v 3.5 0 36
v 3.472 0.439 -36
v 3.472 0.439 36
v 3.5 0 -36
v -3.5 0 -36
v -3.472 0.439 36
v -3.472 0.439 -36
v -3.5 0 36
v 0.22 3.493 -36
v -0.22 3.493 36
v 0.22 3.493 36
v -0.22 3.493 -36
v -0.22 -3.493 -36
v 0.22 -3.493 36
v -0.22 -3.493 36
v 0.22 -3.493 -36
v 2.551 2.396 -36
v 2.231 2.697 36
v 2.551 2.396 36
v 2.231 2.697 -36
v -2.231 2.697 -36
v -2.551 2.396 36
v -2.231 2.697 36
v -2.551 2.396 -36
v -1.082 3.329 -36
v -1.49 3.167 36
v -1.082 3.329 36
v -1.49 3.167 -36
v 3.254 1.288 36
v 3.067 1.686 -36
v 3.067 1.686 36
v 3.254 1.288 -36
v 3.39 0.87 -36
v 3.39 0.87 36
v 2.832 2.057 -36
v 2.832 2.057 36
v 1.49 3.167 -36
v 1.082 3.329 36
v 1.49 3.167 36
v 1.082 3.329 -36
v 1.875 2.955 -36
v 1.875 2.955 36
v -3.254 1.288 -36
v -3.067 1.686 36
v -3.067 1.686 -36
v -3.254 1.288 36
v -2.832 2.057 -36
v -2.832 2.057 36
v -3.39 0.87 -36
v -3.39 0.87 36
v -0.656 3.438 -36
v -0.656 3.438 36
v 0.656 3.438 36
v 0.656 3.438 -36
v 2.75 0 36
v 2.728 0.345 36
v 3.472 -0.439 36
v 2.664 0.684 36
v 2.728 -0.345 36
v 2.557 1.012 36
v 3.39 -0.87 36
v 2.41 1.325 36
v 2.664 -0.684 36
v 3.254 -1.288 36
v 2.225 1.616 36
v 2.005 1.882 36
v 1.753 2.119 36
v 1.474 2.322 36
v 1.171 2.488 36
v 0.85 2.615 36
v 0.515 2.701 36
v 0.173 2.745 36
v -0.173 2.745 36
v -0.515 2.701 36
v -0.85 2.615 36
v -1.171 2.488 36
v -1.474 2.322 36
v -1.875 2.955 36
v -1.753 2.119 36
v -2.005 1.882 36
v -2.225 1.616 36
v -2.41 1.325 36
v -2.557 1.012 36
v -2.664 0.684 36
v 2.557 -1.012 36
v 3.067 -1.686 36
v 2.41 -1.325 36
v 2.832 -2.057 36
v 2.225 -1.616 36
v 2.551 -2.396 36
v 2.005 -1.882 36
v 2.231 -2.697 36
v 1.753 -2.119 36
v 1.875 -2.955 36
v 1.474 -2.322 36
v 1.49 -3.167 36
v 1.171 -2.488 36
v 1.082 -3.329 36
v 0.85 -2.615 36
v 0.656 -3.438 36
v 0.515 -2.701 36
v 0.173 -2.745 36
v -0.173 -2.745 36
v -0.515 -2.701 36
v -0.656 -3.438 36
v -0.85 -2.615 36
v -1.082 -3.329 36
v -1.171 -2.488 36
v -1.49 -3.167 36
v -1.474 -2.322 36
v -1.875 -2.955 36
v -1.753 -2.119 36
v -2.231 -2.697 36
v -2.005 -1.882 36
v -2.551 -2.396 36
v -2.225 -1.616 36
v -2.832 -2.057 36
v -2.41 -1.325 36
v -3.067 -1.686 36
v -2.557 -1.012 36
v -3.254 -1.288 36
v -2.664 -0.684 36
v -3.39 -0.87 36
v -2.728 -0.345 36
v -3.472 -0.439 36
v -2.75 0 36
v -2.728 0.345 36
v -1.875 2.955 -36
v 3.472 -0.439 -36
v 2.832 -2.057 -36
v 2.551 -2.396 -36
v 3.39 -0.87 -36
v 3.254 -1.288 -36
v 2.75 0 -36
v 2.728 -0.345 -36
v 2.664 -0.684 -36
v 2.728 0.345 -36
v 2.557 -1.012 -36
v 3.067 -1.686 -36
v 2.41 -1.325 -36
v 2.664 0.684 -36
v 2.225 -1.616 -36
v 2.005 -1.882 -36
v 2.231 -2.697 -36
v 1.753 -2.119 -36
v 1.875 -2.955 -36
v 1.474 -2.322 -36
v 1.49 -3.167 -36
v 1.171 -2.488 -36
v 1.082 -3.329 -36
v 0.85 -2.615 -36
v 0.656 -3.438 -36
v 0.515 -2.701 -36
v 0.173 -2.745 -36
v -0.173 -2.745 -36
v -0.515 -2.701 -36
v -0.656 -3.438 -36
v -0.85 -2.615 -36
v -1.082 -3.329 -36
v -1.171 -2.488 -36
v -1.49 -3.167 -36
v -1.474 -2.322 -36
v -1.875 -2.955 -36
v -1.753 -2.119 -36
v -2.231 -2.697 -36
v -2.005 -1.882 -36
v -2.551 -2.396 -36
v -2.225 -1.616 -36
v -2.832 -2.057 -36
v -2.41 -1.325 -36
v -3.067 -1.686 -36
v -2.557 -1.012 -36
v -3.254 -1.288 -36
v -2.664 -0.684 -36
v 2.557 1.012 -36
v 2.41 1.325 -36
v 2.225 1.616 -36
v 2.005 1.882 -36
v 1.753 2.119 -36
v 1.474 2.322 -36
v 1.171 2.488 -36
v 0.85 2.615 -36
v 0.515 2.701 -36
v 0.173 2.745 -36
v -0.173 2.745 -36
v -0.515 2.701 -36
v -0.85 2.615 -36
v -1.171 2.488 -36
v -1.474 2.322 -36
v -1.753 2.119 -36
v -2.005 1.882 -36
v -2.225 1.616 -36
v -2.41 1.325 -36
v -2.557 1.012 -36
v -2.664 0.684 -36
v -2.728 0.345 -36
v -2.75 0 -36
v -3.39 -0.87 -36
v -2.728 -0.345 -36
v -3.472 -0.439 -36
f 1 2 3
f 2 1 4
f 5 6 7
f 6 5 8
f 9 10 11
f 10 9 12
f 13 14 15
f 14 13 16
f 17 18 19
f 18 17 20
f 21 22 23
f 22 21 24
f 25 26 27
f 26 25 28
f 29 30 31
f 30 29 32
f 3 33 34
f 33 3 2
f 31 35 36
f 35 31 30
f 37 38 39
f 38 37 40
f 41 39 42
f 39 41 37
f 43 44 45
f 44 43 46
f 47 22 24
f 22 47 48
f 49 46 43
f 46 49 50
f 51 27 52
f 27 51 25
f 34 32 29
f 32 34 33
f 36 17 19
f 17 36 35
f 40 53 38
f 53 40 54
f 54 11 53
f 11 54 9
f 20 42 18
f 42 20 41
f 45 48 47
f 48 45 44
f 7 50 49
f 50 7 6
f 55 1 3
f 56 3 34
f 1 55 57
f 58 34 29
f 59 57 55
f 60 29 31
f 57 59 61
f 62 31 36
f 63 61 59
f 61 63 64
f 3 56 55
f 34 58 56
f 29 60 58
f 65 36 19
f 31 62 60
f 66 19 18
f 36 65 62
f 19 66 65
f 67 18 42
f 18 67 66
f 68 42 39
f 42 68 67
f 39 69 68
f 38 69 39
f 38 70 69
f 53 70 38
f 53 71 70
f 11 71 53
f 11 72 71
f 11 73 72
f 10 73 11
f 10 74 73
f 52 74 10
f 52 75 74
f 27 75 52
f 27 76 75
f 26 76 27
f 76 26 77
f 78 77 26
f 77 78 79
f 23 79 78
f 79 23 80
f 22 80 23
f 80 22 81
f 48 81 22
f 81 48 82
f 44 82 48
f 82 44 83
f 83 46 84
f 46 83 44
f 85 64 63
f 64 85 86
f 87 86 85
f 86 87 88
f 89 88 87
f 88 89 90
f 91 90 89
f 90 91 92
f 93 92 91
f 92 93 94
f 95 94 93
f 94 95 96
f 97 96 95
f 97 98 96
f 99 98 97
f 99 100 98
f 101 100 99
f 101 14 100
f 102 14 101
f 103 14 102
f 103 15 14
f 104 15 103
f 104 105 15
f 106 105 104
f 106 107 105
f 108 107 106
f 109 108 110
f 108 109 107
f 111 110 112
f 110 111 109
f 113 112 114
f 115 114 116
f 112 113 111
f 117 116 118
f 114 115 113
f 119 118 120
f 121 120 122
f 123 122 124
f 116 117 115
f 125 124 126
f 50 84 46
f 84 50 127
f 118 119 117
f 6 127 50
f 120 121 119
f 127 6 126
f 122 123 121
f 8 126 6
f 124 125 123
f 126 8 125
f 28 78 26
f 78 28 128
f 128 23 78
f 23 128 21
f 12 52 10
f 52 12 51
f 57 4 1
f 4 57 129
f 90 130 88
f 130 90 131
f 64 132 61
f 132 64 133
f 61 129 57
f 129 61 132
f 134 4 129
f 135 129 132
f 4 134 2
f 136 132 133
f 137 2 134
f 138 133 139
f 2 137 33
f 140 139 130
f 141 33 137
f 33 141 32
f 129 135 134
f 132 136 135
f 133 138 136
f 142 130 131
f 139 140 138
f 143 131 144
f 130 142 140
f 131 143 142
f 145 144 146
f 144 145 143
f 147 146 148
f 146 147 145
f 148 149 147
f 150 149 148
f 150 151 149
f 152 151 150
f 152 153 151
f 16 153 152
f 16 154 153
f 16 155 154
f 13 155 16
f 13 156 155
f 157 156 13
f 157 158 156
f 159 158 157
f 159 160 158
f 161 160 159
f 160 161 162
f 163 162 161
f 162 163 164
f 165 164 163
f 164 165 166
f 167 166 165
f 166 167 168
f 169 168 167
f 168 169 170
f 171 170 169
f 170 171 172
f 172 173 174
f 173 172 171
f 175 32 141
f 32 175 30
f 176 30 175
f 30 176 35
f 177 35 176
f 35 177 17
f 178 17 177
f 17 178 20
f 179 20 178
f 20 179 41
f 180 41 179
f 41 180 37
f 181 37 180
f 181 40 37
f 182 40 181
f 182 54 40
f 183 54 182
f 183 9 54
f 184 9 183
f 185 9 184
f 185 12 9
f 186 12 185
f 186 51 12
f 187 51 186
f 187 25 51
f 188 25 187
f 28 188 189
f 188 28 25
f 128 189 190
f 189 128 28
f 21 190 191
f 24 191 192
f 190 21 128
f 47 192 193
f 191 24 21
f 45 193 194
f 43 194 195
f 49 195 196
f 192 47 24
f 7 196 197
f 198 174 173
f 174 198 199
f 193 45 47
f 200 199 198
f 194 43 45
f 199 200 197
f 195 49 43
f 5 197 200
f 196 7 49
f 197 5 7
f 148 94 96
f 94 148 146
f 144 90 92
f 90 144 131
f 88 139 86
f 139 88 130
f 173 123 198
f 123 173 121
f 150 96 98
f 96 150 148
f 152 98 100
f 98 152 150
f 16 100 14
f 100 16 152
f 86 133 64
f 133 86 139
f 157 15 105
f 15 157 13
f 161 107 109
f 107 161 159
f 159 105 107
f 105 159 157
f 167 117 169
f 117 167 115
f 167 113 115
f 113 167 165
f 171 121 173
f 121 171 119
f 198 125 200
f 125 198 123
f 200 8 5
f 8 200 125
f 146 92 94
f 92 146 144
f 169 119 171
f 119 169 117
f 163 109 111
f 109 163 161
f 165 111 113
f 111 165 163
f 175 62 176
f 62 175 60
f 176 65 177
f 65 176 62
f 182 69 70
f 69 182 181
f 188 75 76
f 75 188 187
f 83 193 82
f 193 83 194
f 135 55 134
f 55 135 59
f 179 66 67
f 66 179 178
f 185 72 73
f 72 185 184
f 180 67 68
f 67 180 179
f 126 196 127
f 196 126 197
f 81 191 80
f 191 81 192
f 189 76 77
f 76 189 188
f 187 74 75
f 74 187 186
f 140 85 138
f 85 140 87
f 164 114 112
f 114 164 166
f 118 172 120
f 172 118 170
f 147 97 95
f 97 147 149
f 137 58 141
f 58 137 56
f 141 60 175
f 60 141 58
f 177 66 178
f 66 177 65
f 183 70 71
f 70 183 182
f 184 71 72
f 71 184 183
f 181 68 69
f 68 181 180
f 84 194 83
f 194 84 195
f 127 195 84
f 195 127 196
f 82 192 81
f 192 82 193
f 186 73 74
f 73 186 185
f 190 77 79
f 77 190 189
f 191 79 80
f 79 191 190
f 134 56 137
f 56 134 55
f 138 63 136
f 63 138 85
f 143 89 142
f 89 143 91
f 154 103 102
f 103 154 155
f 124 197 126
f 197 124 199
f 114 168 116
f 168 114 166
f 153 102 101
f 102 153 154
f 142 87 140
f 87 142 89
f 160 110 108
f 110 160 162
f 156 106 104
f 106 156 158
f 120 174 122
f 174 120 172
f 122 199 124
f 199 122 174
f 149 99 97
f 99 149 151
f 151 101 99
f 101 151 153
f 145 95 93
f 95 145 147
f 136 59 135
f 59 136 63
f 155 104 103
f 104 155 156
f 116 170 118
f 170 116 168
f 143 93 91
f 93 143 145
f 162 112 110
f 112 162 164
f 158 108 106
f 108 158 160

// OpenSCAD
$fn = 50;


difference() {
	union() {
		translate(v = [0, 0, -36.0000000000]) {
			cylinder(h = 72, r = 3.5000000000);
		}
	}
	union() {
		translate(v = [0, 0, -100.0000000000]) {
			cylinder(h = 200, r = 2.7500000000);
		}
	}
}
